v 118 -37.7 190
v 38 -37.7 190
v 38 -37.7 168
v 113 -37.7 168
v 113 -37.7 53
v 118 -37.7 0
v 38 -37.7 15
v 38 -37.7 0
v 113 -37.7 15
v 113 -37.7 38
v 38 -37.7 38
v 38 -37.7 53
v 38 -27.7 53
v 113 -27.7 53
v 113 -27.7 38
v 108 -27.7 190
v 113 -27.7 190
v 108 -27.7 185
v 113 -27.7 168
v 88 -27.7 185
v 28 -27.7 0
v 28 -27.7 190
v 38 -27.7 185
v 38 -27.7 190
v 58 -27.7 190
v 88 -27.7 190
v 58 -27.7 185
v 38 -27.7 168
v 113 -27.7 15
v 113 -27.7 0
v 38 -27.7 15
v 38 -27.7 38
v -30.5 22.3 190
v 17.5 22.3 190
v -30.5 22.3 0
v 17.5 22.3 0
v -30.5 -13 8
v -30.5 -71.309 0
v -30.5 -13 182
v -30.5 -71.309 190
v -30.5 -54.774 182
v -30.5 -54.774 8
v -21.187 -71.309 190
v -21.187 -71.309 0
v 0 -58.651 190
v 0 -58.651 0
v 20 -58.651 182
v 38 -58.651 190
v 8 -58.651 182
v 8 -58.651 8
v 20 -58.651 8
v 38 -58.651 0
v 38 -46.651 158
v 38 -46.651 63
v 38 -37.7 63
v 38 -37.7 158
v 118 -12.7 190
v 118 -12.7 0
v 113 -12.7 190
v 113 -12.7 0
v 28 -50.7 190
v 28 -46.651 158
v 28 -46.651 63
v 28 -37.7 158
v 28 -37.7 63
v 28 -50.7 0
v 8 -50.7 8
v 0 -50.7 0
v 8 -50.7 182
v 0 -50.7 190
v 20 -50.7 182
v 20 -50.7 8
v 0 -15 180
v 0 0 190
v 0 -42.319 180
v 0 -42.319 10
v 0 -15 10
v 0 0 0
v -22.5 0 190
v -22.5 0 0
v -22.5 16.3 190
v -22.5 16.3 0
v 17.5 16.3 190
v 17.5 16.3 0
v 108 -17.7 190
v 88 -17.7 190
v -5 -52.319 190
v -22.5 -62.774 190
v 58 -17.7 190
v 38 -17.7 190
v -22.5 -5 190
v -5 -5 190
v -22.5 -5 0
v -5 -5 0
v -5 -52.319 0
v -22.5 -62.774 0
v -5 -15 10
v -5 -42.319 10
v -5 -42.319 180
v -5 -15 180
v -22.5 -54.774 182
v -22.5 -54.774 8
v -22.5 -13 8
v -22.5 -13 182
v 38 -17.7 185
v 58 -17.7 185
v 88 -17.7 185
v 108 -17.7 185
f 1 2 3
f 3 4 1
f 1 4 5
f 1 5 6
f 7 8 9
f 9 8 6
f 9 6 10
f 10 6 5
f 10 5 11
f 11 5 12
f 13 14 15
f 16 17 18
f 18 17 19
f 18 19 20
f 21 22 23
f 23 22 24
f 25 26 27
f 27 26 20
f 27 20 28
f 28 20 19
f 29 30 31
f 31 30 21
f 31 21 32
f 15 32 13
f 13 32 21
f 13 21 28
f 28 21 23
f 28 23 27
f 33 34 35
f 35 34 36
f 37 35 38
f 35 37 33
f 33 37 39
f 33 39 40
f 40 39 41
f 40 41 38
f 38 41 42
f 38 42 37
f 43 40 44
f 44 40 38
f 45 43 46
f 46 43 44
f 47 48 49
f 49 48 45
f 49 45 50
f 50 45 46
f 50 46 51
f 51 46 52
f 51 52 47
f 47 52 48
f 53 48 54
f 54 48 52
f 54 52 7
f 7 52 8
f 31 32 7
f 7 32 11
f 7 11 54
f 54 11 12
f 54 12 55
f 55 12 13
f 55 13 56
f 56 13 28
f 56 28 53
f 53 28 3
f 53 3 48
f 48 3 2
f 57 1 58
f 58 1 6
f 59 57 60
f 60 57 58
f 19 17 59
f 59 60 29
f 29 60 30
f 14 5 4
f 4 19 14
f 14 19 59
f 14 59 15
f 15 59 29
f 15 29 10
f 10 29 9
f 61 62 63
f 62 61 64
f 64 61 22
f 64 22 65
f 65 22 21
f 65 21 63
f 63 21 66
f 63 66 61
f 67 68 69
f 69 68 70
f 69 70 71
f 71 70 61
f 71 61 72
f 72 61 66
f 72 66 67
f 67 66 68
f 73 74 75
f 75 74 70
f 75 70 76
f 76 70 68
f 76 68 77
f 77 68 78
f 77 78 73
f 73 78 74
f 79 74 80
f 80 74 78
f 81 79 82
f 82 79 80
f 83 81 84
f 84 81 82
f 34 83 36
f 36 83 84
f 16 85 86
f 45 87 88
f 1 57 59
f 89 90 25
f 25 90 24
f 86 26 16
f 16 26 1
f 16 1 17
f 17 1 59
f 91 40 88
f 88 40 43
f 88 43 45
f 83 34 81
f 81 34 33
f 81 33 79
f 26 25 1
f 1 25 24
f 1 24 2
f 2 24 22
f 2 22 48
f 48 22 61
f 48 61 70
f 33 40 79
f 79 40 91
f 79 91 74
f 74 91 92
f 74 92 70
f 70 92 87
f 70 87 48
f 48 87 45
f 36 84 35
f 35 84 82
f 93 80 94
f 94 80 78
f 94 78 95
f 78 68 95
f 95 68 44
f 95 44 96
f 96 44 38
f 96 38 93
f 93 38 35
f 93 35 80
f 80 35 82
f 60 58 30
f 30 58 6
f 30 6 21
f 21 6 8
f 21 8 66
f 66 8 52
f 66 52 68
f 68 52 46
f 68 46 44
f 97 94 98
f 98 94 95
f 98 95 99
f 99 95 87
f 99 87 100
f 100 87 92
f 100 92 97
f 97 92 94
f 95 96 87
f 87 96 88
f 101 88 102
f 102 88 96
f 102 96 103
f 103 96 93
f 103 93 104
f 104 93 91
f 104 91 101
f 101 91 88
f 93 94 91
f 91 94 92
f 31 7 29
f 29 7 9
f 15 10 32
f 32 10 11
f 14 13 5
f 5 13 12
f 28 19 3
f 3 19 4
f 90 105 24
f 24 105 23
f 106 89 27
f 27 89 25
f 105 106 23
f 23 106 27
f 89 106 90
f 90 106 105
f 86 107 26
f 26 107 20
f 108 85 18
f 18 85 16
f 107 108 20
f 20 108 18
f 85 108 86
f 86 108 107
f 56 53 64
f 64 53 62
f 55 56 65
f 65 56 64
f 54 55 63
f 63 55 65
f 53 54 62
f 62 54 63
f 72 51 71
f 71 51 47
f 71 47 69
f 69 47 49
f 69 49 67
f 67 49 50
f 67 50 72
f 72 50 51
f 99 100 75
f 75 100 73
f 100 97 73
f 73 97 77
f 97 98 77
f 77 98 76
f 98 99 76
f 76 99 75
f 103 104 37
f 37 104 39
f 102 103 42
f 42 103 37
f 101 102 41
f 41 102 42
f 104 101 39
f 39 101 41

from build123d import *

# Parameters (mm, degrees)
EXTRUDE_1_DEPTH        = 190
CUT_EXTRUDE_1_DEPTH    = 235.752853891
SKETCH_4_W             = 75
SKETCH_4_H             = 23
CUT_EXTRUDE_2_DEPTH    = 230.181151057
SKETCH_6_W             = 75
SKETCH_6_H             = 115
CUT_EXTRUDE_3_DEPTH    = 230.181151057
SKETCH_7_W             = 20
SKETCH_7_H             = 5
EXTRUDE_3_DEPTH        = 10
PATTERN_LINEAR_1_COUNT = 2
PATTERN_LINEAR_1_PITCH = 50
CUT_EXTRUDE_4_REACH    = 220.14
SKETCH_8_W             = 95
SKETCH_8_H             = 8.95125425
CUT_EXTRUDE_5_REACH    = 237.272
SKETCH_9_W             = 12
SKETCH_9_H             = 174
CUT_EXTRUDE_6_REACH    = 239.306
SKETCH_10_W            = 170
SKETCH_10_H            = 27.319431914
CUT_EXTRUDE_7_REACH    = 248.83
SKETCH_12_W            = 174
SKETCH_12_H            = 41.774248955


with BuildPart() as part:
    # 草图1 → 凸台-拉伸1 (new body)
    with BuildSketch(Plane.XY):
        Polygon((0, 0), (-22.5, 0), (-22.5, 16.3), (17.5, 16.3), (17.5, 22.3), (-30.5, 22.3), (-30.5, -71.308501668), (-21.186581166, -71.308501668), (0, -58.65125425), (38, -58.65125425), (38, -37.7), (118, -37.7), (118, -12.7), (113, -12.7), (113, -27.7), (28, -27.7), (28, -50.7), (0, -50.7), align=None)
    extrude(amount=EXTRUDE_1_DEPTH)

    # 草图2 → 切除-拉伸1 (cut, through all)
    with BuildSketch(Plane.XY.offset(190)):
        Polygon((-22.5, -5), (-22.5, -62.774248955), (-5, -52.319431914), (-5, -5), align=None)
    extrude(amount=-CUT_EXTRUDE_1_DEPTH, mode=Mode.SUBTRACT)

    # 草图4 → 切除-拉伸2 (cut, through all)
    with BuildSketch(Plane(origin=(0, -27.7, 0), x_dir=(1, 0, 0), z_dir=(0, 1, 0))):
        with Locations((75.5, -26.5)):
            Rectangle(SKETCH_4_W, SKETCH_4_H)
    extrude(amount=-CUT_EXTRUDE_2_DEPTH, mode=Mode.SUBTRACT)

    # 草图6 → 切除-拉伸3 (cut, through all)
    with BuildSketch(Plane(origin=(0, -27.7, 0), x_dir=(1, 0, 0), z_dir=(0, 1, 0))):
        with Locations((75.5, -110.5)):
            Rectangle(SKETCH_6_W, SKETCH_6_H)
    extrude(amount=-CUT_EXTRUDE_3_DEPTH, mode=Mode.SUBTRACT)

    # 草图7 → 凸台-拉伸3 (add)
    with BuildSketch(Plane(origin=(0, -27.7, 0), x_dir=(1, 0, 0), z_dir=(0, 1, 0))):
        with Locations((48, -187.5)):
            Rectangle(SKETCH_7_W, SKETCH_7_H)
    extrude_3 = extrude(amount=EXTRUDE_3_DEPTH)

    # 阵列(线性)1: 凸台-拉伸3 ×2
    with Locations(*[(i * PATTERN_LINEAR_1_PITCH, 0, 0) for i in range(1, PATTERN_LINEAR_1_COUNT)]):
        add(extrude_3)

    # 草图8 → 切除-拉伸4 (cut, up to next)
    with BuildSketch(Plane(origin=(38, 0, 0), x_dir=(0, 0, -1), z_dir=(1, 0, 0)), mode=Mode.PRIVATE) as cut_extrude_4_sk1:
        with Locations((-110.5, -42.175627125)):
            Rectangle(SKETCH_8_W, SKETCH_8_H)
    cut_extrude_4_tool1 = extrude(cut_extrude_4_sk1.sketch, amount=-CUT_EXTRUDE_4_REACH, mode=Mode.PRIVATE) & part.part
    add(cut_extrude_4_tool1.solids().sort_by_distance((38, -42.175627, 110.5))[0], mode=Mode.SUBTRACT)

    # 草图9 → 切除-拉伸5 (cut, up to next)
    with BuildSketch(Plane(origin=(0, -50.7, 0), x_dir=(1, 0, 0), z_dir=(0, 1, 0)), mode=Mode.PRIVATE) as cut_extrude_5_sk1:
        with Locations((14, -95)):
            Rectangle(SKETCH_9_W, SKETCH_9_H)
    cut_extrude_5_tool1 = extrude(cut_extrude_5_sk1.sketch, amount=-CUT_EXTRUDE_5_REACH, mode=Mode.PRIVATE) & part.part
    add(cut_extrude_5_tool1.solids().sort_by_distance((14, -50.7, 95))[0], mode=Mode.SUBTRACT)

    # 草图10 → 切除-拉伸6 (cut, up to next)
    with BuildSketch(Plane.ZY.offset(5), mode=Mode.PRIVATE) as cut_extrude_6_sk1:
        with Locations((95, -28.659715957)):
            Rectangle(SKETCH_10_W, SKETCH_10_H)
    cut_extrude_6_tool1 = extrude(cut_extrude_6_sk1.sketch, amount=-CUT_EXTRUDE_6_REACH, mode=Mode.PRIVATE) & part.part
    add(cut_extrude_6_tool1.solids().sort_by_distance((-5, -28.659716, 95))[0], mode=Mode.SUBTRACT)

    # 草图12 → 切除-拉伸7 (cut, up to next)
    with BuildSketch(Plane(origin=(-22.5, 0, 0), x_dir=(0, 0, -1), z_dir=(1, 0, 0)), mode=Mode.PRIVATE) as cut_extrude_7_sk1:
        with Locations((-95, -33.887124478)):
            Rectangle(SKETCH_12_W, SKETCH_12_H)
    cut_extrude_7_tool1 = extrude(cut_extrude_7_sk1.sketch, amount=-CUT_EXTRUDE_7_REACH, mode=Mode.PRIVATE) & part.part
    add(cut_extrude_7_tool1.solids().sort_by_distance((-22.5, -33.887124, 95))[0], mode=Mode.SUBTRACT)


solid = part.part
